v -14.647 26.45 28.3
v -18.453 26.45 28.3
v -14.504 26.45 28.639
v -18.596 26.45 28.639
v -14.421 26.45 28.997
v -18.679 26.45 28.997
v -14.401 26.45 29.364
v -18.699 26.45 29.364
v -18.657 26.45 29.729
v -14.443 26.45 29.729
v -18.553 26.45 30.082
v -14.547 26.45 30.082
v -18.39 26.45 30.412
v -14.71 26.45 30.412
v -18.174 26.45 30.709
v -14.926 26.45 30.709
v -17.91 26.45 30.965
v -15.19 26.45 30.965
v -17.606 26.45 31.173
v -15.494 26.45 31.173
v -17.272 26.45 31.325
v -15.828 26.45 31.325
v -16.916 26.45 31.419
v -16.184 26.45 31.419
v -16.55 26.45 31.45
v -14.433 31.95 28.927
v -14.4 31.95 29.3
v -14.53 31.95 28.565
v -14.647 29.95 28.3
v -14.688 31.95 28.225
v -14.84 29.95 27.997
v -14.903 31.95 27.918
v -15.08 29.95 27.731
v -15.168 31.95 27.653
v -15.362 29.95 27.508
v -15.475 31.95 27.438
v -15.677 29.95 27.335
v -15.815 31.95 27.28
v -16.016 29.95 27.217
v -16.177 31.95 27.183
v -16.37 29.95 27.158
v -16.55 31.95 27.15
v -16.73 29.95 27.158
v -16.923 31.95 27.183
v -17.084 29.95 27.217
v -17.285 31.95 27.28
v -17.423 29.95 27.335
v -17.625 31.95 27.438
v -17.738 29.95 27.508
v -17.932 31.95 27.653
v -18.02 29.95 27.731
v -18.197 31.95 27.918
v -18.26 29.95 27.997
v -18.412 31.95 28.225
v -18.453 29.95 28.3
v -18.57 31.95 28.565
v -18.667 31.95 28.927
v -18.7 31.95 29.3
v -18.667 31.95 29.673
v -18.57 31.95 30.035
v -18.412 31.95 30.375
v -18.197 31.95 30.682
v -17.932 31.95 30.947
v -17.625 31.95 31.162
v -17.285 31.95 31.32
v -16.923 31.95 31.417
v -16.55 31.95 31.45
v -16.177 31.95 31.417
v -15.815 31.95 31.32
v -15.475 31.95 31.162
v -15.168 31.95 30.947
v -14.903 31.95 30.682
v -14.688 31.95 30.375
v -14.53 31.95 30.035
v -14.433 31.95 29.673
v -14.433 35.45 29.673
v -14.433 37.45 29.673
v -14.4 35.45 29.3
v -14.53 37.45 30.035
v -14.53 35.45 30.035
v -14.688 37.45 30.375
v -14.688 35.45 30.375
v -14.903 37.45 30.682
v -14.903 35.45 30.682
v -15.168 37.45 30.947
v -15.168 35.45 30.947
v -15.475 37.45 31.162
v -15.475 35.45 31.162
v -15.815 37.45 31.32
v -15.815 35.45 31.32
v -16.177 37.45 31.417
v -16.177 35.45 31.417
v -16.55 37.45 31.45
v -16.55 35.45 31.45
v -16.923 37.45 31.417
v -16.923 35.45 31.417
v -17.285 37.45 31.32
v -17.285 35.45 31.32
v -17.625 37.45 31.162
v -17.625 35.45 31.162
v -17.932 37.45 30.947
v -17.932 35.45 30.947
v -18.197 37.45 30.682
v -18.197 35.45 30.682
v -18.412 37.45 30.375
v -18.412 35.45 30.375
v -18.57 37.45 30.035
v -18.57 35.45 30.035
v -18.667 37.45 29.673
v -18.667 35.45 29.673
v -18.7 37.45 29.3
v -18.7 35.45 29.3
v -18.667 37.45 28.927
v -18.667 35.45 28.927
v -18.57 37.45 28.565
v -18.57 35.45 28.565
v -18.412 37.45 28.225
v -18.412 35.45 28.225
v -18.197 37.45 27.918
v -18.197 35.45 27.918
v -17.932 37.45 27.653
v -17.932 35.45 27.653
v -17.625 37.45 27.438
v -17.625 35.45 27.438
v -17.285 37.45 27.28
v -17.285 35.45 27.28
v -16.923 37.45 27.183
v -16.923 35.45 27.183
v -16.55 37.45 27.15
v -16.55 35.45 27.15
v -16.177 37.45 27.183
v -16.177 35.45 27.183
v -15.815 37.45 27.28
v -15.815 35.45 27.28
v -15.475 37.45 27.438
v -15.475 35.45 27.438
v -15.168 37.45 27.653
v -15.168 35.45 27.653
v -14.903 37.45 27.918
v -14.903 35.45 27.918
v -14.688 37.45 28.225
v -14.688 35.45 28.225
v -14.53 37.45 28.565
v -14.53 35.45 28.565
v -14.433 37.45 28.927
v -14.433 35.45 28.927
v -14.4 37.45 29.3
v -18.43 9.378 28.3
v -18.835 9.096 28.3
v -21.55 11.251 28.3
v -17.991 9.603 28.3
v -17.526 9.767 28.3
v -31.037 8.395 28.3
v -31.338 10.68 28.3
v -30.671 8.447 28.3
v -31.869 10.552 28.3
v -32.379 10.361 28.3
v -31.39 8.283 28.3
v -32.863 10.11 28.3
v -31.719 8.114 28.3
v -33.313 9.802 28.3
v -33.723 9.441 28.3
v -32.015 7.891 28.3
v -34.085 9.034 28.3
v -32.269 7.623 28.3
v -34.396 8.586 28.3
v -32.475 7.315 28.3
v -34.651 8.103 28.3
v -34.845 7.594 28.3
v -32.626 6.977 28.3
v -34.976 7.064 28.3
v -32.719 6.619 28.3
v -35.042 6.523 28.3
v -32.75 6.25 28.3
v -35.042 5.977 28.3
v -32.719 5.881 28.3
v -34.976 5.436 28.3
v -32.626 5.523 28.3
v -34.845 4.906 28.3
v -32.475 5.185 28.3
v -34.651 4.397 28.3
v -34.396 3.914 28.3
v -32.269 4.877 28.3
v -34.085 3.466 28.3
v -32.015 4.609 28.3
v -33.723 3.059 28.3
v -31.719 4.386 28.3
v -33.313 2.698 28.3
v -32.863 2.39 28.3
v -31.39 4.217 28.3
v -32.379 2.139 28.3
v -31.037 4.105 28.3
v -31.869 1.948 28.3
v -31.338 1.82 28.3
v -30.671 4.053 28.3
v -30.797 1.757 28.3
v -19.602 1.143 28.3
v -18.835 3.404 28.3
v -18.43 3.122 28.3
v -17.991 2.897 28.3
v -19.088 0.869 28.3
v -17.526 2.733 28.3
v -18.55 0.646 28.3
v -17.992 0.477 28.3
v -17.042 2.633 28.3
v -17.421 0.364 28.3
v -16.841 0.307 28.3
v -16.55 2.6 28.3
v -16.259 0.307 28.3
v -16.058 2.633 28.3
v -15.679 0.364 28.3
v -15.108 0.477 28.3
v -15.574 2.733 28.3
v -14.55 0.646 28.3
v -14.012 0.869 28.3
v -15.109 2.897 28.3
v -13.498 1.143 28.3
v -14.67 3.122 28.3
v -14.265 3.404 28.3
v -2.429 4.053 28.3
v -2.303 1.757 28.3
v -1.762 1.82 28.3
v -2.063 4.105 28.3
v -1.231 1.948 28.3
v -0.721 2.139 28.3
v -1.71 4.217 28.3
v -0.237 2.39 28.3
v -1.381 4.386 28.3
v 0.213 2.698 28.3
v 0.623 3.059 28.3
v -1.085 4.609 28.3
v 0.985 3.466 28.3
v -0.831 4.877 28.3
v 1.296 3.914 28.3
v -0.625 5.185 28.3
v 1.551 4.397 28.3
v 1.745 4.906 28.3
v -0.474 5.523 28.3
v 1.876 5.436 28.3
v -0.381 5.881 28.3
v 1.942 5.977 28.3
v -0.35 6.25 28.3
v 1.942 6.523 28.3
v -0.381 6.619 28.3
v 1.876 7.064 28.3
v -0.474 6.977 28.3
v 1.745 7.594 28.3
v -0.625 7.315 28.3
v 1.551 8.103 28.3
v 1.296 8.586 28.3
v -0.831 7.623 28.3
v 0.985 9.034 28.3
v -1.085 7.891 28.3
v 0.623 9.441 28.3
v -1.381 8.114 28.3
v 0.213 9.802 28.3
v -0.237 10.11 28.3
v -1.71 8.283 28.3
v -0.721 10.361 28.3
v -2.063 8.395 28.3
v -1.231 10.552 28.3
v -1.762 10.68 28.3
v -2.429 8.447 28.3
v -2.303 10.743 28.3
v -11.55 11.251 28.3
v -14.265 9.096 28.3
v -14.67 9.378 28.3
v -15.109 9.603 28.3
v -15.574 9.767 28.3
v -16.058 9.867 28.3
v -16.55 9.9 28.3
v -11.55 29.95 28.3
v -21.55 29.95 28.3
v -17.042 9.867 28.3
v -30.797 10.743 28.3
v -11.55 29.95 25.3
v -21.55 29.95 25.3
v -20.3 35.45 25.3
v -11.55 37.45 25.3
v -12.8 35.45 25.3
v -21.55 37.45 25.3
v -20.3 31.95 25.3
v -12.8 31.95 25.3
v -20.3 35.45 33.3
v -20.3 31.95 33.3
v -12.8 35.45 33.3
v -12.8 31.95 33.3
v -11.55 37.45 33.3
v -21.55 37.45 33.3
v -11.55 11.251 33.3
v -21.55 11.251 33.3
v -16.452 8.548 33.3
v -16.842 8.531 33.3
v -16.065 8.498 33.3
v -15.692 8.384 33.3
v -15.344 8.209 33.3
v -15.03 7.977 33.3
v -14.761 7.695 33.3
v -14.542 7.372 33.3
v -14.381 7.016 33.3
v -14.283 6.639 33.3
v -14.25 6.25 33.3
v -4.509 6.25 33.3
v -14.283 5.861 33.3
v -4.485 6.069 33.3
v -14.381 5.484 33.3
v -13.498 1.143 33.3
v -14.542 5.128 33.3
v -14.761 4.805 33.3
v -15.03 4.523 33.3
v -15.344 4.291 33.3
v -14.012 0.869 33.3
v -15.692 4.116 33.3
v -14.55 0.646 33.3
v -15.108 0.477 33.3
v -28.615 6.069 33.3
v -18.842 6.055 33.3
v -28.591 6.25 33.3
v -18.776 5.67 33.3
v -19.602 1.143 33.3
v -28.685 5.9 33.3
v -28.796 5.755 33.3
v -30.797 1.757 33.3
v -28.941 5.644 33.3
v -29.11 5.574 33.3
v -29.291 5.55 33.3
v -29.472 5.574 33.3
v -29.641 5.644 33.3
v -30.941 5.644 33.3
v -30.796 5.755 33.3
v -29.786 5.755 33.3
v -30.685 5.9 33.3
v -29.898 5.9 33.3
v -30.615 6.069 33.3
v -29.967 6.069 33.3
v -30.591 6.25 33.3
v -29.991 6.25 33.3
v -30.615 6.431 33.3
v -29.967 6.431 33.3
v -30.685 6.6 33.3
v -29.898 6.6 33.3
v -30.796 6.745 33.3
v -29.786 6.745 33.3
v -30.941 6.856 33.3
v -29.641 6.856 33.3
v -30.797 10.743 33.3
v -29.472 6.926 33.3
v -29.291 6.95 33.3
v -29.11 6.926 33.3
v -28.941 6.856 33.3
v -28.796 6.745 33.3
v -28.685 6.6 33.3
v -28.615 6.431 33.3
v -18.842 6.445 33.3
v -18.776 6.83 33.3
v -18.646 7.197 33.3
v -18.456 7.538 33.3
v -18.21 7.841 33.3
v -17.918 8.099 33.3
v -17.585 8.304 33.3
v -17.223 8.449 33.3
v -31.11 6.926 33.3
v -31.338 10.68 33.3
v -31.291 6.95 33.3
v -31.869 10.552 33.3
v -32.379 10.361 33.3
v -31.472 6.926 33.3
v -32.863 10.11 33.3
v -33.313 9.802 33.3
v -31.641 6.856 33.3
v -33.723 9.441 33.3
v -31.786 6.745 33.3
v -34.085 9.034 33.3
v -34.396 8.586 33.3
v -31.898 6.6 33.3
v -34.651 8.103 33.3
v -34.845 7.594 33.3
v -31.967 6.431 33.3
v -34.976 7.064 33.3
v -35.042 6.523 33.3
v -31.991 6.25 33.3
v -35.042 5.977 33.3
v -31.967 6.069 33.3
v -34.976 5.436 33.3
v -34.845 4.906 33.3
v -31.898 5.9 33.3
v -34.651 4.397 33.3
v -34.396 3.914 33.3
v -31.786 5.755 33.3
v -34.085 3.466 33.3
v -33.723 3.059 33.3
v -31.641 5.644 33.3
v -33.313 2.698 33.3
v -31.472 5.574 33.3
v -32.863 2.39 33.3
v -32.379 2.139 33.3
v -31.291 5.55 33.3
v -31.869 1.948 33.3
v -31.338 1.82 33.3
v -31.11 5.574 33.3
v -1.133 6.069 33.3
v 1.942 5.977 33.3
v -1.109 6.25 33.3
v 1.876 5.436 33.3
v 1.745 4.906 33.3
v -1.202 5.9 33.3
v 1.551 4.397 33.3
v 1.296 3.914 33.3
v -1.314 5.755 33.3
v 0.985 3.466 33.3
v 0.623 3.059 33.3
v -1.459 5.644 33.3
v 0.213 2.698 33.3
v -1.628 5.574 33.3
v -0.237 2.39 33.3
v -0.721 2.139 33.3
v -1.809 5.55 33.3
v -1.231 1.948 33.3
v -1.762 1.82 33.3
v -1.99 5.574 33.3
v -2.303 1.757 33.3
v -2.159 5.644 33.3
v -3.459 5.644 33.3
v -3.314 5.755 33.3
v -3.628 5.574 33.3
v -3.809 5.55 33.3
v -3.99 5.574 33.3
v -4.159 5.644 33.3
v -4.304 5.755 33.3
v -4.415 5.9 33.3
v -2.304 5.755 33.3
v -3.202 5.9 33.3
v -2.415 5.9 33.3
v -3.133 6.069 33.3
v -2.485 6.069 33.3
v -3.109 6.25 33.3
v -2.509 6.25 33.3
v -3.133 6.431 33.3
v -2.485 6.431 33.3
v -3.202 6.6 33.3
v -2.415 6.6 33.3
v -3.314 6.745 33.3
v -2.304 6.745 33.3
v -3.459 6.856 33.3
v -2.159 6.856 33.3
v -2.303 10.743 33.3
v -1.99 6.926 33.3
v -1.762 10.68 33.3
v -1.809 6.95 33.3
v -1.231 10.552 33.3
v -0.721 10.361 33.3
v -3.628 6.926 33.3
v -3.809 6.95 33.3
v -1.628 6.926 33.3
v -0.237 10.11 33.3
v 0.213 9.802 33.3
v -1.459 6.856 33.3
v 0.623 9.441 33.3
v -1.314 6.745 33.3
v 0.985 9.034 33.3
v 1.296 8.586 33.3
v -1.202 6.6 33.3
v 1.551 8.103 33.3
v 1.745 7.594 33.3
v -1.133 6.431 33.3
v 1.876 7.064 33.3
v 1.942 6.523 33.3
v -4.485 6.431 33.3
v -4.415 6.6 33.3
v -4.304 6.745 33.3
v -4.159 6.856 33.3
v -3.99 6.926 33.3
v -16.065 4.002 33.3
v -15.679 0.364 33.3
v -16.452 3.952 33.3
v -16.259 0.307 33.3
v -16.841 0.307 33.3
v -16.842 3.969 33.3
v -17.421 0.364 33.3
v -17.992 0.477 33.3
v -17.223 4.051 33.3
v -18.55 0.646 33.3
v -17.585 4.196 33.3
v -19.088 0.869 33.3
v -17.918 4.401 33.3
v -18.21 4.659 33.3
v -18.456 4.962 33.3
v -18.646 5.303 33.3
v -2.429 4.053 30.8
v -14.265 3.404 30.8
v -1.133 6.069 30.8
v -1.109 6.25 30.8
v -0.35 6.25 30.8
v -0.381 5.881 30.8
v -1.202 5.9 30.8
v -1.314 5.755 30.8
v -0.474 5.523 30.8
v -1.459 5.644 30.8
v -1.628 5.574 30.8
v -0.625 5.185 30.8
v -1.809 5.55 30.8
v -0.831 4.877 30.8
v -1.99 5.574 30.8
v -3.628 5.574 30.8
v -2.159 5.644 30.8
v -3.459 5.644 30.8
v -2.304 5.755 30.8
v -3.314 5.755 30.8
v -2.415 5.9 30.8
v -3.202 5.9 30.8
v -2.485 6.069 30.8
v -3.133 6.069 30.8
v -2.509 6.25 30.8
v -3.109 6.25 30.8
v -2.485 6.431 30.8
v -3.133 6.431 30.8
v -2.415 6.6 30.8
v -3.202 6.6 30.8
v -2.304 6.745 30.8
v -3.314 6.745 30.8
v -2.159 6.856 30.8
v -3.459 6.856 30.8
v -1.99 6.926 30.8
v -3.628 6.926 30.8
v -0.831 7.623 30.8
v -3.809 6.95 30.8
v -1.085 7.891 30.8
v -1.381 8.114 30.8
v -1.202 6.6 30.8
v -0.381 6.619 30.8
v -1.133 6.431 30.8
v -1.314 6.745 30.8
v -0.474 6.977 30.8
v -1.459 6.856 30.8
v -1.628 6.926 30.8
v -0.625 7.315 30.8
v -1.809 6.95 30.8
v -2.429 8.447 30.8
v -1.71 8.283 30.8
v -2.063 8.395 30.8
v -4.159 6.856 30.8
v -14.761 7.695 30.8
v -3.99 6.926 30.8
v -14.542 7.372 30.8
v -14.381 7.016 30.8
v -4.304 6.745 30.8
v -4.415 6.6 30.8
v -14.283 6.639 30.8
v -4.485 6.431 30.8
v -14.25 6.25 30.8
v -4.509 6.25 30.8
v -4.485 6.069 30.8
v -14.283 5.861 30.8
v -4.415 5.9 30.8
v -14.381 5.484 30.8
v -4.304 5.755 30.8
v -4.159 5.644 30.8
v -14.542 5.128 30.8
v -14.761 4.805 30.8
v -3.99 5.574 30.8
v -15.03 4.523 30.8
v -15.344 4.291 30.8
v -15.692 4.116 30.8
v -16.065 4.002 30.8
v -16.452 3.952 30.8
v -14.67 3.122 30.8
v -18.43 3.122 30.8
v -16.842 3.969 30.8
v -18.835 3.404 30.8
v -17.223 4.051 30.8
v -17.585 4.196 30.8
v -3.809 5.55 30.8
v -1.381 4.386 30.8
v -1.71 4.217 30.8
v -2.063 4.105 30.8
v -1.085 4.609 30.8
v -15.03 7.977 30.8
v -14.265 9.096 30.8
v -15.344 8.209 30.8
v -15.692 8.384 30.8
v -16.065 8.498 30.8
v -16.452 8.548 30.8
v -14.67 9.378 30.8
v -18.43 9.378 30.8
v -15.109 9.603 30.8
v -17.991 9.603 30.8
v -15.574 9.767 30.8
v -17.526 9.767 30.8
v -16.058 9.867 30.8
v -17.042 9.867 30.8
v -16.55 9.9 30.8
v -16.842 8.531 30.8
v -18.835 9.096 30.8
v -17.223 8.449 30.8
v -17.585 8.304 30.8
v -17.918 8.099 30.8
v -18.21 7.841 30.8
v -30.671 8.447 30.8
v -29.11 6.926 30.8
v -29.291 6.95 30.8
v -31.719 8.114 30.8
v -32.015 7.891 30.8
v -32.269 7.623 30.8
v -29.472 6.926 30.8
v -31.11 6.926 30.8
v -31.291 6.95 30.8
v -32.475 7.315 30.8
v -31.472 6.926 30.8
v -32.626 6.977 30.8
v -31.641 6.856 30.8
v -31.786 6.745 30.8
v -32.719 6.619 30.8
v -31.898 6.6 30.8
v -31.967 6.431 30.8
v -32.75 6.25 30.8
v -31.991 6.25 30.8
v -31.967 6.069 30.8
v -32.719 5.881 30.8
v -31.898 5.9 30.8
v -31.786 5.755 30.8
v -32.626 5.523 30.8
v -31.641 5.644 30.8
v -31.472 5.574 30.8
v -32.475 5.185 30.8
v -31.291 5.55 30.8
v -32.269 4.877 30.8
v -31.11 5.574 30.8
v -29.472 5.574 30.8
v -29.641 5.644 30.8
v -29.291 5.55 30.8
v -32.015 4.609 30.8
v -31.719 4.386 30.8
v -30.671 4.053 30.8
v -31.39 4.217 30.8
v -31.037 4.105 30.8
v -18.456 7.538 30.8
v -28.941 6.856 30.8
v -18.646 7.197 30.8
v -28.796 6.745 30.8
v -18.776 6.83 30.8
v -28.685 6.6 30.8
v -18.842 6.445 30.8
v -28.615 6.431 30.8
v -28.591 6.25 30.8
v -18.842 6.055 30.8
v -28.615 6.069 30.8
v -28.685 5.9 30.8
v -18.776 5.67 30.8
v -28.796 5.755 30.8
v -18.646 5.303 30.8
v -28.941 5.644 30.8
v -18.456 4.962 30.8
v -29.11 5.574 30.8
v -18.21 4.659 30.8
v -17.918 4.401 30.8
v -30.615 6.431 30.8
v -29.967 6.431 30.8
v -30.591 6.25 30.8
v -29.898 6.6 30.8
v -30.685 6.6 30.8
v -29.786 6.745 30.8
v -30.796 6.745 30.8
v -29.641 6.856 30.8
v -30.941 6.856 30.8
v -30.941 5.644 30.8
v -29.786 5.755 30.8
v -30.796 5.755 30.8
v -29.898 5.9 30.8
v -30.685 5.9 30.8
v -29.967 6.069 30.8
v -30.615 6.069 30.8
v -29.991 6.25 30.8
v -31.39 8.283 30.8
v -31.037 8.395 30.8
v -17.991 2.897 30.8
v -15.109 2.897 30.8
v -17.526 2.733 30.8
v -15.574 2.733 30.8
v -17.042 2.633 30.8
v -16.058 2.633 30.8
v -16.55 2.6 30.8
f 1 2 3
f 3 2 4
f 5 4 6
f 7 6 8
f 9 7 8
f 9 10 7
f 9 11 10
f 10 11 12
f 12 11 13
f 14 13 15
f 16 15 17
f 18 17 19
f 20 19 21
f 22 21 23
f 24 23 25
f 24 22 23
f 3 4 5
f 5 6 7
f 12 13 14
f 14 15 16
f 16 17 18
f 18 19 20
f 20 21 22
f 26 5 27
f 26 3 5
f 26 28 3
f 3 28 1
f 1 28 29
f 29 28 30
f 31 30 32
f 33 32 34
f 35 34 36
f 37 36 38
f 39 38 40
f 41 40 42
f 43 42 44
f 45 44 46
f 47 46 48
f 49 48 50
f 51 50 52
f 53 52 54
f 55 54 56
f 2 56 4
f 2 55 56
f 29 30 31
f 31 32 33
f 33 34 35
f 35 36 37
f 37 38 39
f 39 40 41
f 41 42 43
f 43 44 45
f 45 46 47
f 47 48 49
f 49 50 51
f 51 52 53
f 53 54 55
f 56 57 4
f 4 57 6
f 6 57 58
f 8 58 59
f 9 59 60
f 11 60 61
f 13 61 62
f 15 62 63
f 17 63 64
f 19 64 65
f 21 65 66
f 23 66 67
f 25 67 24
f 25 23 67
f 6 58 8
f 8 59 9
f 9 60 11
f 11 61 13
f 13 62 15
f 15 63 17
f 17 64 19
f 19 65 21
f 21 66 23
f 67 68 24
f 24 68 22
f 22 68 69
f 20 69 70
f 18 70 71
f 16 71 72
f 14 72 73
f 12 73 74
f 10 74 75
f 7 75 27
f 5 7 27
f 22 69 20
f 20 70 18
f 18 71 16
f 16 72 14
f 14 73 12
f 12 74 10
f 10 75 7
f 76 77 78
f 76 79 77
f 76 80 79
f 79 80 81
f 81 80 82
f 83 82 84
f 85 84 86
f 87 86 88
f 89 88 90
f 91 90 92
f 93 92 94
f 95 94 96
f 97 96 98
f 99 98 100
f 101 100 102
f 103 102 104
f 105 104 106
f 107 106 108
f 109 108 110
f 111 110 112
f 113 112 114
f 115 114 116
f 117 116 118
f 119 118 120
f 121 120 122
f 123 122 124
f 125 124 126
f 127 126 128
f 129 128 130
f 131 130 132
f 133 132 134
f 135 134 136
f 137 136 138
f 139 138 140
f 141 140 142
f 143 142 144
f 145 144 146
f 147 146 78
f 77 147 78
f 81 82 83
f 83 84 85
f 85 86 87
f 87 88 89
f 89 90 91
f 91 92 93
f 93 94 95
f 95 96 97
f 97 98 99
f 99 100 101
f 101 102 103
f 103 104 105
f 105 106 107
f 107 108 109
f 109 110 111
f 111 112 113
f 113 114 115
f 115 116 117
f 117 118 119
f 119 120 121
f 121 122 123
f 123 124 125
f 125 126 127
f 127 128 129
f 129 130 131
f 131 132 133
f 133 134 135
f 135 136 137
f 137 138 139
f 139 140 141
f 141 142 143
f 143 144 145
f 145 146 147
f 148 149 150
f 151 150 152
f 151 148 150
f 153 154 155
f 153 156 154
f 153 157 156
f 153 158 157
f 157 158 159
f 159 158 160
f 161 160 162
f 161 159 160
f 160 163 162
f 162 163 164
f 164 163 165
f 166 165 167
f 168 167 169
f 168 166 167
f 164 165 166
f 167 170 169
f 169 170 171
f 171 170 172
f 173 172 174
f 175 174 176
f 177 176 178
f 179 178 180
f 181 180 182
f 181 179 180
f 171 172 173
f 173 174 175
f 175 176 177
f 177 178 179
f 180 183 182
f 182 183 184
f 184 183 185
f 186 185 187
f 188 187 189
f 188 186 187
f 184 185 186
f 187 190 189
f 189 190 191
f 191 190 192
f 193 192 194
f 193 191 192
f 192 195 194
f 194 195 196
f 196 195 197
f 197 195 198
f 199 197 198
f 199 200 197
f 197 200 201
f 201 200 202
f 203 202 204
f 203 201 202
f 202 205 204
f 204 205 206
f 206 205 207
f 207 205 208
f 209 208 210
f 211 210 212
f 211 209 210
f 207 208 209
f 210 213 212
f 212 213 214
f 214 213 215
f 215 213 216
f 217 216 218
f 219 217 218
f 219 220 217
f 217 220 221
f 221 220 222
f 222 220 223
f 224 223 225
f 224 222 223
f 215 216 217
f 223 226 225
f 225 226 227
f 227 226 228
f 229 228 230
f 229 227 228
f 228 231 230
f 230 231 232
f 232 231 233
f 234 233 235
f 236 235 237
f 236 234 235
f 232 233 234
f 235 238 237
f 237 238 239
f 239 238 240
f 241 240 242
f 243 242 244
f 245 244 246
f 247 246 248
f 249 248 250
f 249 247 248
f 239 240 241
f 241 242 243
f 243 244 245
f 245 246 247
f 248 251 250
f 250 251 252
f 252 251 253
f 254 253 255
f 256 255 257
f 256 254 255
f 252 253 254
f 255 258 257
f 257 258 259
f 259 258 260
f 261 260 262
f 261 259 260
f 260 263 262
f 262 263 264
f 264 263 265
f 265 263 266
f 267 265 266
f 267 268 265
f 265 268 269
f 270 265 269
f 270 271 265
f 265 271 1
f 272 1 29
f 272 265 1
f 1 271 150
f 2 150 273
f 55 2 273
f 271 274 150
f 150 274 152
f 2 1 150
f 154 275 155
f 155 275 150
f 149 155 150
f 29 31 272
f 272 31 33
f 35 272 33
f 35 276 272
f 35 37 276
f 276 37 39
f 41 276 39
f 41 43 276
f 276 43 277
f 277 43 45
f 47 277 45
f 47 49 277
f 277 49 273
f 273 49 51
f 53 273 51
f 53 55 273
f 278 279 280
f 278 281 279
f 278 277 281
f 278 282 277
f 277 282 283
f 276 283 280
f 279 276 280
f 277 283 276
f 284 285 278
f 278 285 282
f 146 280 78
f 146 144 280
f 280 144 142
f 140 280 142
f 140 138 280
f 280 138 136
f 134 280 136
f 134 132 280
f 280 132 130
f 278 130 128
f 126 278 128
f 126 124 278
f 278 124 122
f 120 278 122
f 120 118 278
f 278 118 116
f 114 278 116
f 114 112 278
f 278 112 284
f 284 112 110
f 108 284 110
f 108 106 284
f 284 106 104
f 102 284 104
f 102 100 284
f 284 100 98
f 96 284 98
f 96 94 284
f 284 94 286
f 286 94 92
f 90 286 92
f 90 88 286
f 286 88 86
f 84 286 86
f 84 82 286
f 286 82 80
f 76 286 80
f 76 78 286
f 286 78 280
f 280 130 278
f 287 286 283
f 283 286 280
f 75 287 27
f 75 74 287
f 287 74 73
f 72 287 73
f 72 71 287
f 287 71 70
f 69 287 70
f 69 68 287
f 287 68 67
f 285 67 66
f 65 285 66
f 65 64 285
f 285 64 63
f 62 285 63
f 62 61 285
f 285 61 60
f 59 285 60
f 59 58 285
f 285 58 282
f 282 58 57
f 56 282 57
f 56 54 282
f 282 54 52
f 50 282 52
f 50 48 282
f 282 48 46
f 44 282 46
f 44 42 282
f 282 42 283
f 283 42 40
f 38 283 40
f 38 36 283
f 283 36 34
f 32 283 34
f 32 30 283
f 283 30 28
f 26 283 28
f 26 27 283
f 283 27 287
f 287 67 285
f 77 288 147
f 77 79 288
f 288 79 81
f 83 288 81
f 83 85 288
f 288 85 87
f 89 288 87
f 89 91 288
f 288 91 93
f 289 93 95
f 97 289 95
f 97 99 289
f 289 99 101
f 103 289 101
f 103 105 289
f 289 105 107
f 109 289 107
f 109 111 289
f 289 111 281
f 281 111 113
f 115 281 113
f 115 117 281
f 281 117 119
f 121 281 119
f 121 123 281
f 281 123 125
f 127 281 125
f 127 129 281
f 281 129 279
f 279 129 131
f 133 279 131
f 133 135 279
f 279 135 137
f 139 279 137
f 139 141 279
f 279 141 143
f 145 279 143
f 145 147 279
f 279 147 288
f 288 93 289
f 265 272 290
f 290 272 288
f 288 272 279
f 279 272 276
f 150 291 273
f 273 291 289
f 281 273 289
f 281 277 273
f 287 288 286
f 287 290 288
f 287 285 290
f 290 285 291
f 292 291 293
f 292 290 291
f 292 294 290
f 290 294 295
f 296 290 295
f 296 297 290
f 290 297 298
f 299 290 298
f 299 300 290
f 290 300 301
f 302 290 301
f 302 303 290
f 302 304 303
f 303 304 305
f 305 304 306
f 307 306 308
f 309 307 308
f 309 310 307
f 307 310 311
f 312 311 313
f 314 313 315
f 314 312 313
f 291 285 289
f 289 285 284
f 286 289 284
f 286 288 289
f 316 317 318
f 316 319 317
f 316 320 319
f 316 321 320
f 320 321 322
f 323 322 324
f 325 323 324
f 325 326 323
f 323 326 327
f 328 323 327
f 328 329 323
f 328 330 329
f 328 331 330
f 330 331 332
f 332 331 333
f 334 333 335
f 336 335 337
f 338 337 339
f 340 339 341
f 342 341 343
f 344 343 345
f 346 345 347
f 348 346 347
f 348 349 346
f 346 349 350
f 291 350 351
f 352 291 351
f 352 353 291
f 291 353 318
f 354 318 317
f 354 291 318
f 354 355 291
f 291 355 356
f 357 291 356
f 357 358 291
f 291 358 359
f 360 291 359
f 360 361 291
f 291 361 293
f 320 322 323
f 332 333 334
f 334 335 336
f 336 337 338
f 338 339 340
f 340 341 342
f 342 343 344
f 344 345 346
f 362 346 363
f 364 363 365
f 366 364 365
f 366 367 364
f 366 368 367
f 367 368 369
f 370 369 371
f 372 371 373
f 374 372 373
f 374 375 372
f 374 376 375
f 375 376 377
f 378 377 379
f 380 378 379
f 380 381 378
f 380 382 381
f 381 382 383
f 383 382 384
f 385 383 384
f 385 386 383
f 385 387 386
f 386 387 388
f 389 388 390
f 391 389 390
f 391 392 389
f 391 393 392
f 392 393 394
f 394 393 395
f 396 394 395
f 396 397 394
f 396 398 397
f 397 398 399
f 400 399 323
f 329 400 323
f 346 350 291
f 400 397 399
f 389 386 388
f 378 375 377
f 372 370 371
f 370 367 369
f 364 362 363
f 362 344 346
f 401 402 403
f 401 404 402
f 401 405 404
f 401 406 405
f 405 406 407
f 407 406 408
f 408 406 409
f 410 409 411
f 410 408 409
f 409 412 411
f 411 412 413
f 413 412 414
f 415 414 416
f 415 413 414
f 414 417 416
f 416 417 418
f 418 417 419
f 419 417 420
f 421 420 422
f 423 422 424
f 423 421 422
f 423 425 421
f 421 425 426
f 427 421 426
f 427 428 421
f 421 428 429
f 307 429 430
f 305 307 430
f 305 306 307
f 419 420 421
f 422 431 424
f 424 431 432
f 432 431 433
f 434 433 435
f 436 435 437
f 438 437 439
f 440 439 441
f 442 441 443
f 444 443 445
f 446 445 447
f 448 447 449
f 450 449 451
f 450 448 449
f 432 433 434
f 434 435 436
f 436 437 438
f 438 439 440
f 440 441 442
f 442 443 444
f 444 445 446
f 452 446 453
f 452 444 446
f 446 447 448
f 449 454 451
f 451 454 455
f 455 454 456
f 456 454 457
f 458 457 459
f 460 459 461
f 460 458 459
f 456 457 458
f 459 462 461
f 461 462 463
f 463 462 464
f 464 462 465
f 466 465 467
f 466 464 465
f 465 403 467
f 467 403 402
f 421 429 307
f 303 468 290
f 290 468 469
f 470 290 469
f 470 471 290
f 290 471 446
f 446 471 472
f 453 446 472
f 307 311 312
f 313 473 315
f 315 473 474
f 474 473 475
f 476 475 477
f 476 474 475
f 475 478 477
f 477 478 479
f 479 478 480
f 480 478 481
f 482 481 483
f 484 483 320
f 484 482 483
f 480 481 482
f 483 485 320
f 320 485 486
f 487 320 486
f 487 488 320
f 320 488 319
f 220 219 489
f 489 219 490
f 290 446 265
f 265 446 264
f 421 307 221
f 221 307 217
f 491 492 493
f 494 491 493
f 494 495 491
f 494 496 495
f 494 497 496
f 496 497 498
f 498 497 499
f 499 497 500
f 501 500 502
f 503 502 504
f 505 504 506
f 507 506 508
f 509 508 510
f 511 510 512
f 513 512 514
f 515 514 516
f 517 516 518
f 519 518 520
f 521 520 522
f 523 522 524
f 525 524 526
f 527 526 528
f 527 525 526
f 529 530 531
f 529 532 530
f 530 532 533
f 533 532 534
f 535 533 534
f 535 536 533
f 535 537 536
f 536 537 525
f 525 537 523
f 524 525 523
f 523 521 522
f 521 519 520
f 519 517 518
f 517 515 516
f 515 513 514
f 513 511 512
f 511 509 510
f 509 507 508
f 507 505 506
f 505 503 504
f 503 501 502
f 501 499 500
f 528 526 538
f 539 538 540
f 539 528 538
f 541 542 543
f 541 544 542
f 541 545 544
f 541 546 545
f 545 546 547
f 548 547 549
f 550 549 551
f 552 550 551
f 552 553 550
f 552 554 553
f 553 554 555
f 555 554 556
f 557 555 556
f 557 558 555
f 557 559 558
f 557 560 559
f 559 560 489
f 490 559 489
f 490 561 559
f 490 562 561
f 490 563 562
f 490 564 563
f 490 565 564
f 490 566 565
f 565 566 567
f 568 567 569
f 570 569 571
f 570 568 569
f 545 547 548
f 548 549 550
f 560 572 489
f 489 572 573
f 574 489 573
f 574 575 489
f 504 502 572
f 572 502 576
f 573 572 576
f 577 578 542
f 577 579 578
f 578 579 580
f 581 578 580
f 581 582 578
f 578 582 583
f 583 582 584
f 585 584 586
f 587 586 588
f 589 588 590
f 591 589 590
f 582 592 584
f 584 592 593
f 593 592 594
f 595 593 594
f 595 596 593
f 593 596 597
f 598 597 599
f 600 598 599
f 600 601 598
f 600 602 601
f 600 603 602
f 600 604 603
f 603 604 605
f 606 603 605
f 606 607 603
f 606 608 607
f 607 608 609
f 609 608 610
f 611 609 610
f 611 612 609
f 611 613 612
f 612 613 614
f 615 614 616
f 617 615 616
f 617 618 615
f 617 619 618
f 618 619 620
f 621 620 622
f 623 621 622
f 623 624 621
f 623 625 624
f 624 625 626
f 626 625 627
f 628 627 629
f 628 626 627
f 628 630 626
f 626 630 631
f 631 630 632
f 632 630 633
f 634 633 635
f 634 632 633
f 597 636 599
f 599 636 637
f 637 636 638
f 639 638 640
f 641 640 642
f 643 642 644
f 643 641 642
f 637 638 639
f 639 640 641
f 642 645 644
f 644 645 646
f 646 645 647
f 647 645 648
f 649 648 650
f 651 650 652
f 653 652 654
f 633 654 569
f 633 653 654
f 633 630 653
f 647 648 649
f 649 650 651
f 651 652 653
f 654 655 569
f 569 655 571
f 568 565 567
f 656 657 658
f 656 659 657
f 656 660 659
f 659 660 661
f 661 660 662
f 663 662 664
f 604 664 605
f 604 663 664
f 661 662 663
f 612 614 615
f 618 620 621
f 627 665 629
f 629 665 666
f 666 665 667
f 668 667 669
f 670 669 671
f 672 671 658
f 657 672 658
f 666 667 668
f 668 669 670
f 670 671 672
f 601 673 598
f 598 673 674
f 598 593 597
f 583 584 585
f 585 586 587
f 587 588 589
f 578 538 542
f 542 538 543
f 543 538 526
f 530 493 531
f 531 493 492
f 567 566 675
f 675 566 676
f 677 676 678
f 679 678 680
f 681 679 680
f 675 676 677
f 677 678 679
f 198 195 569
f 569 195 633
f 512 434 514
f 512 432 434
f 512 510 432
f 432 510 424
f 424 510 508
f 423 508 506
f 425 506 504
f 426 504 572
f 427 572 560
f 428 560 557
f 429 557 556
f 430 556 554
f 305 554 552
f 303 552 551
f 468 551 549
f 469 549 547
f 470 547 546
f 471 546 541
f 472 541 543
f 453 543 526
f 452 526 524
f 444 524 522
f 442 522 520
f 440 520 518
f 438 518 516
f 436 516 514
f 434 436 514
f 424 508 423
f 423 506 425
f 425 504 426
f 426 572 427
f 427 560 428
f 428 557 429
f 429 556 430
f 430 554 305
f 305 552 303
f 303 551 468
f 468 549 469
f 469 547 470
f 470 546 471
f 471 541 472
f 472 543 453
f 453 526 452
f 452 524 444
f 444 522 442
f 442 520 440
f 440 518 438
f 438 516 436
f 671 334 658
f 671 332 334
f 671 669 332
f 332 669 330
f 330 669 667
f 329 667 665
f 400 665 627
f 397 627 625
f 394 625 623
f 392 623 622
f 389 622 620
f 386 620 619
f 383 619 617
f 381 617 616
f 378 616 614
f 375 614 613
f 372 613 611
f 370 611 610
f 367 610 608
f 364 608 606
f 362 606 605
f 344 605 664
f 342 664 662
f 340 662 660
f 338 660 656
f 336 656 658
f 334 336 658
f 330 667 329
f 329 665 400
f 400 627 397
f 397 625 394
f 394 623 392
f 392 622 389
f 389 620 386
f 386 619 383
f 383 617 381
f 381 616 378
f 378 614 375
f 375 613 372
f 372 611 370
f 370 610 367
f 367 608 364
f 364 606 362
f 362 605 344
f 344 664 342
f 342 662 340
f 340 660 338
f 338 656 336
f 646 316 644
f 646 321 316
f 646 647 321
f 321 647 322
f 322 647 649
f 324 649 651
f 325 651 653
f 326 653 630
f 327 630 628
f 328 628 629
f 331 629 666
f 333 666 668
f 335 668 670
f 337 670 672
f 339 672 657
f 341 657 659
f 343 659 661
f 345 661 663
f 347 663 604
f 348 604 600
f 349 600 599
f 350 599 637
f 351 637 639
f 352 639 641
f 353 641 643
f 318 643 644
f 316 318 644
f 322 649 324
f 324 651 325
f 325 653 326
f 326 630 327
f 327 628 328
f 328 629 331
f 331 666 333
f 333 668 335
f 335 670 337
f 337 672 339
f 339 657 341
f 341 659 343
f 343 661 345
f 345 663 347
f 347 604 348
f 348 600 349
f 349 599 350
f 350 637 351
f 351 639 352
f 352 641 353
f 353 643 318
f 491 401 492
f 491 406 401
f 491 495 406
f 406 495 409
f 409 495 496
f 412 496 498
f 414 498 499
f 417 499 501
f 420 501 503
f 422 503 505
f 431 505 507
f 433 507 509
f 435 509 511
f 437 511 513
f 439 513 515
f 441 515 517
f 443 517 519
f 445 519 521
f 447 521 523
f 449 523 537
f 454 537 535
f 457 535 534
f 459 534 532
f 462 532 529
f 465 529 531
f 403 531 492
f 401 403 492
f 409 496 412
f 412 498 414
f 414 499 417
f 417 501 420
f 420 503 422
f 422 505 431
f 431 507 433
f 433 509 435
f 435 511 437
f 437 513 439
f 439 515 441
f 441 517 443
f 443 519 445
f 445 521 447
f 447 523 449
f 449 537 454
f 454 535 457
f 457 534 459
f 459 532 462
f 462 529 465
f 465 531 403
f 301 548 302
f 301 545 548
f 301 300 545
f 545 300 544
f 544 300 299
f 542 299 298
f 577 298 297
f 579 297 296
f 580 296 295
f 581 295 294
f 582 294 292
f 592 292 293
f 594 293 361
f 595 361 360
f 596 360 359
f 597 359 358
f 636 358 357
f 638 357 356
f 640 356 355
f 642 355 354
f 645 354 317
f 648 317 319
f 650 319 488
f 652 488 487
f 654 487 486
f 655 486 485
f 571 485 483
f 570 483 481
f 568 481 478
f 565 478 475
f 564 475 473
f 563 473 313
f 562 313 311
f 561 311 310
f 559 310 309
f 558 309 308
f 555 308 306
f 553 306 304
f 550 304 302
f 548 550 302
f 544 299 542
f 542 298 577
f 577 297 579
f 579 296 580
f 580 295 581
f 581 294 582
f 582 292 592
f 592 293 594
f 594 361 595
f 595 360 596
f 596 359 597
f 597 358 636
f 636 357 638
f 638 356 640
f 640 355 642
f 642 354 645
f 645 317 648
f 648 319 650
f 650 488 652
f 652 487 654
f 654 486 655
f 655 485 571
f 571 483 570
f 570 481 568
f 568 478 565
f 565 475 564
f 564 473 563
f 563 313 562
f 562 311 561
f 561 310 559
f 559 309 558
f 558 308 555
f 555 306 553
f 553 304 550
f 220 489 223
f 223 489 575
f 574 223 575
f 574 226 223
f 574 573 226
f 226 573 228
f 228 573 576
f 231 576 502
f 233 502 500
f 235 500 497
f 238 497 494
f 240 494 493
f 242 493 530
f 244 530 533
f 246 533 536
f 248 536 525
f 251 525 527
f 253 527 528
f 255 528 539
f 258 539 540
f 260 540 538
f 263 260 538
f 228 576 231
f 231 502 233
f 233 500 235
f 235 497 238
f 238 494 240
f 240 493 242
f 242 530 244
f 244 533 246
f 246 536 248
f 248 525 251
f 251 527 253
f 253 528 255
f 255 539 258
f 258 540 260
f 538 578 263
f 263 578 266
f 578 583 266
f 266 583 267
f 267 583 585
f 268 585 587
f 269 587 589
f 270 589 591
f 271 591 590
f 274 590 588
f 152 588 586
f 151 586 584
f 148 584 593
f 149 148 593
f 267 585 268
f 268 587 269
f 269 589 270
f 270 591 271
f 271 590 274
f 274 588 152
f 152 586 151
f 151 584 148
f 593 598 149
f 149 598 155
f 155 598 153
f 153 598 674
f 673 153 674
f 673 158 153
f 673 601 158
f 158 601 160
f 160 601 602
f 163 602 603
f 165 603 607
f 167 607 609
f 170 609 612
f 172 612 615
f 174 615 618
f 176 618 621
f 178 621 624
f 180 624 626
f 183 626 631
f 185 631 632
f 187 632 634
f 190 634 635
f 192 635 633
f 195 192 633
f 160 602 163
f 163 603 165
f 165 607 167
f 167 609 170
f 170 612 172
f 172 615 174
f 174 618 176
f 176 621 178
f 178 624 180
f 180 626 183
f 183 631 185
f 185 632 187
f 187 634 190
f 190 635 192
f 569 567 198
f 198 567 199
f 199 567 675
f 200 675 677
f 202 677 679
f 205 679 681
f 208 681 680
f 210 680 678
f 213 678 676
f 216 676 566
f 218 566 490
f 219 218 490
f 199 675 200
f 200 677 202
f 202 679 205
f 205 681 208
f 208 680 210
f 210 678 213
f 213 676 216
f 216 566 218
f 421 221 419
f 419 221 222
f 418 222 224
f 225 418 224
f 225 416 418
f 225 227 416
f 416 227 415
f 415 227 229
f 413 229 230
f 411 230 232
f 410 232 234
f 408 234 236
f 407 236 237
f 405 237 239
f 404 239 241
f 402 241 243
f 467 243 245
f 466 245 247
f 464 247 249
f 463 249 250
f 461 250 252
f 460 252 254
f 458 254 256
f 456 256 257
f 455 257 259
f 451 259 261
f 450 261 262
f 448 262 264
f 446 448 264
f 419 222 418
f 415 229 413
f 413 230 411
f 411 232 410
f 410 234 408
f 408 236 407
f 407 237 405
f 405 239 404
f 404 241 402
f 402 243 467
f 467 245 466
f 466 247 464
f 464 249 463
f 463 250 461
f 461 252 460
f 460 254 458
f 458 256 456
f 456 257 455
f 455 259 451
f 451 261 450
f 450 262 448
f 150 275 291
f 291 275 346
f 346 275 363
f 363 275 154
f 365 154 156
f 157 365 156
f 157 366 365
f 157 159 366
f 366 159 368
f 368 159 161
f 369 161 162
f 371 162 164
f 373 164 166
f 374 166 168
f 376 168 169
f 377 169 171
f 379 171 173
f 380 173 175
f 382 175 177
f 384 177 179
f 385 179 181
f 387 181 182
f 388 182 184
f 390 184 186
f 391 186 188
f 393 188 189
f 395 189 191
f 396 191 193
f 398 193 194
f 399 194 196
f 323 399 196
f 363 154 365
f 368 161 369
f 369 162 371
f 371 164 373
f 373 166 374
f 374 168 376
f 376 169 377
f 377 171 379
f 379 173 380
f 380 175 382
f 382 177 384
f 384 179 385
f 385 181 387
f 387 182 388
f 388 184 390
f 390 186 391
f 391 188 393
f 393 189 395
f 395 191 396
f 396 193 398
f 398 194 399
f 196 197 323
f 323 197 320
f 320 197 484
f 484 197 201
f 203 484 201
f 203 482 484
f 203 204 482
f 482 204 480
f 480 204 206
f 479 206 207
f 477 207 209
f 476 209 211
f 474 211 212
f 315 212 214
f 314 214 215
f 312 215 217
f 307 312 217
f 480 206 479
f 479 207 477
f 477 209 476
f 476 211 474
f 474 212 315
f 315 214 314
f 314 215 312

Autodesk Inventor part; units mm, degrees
ref_plane "YZ Plane" through (0, 0, 0) normal (1, 0, 0) x (0, 1, 0)
ref_plane "Work Plane1" through (-16.55, 6.25, 30.8) normal (0, 0, 1) x (-1, 0, 0)
sketch "Sketch1" plane through (-16.55, 6.25, 30.8) normal (0, 0, 1) x (-1, 0, 0)
  circle A0 centre (4.7413, 0) radius 0.35 projected
  circle A1 centre (6.7413, 0) radius 0.35 projected
  circle A2 centre (8.7413, 0) radius 0.35 projected
  circle A3 centre (10.7413, 0) radius 0.35 projected
  circle A4 centre (12.7413, 0) radius 0.35 projected
  circle A5 centre (14.7413, 0) radius 0.35 projected
  circle A6 centre (-4.7413, 0) radius 0.35 projected
  circle A7 centre (-6.7413, 0) radius 0.35 projected
  circle A8 centre (-8.7413, 0) radius 0.35 projected
  circle A9 centre (-10.7413, 0) radius 0.35 projected
  circle A10 centre (-12.7413, 0) radius 0.35 projected
  circle A11 centre (-14.7413, 0) radius 0.35 projected
  circle A12 centre (0, 0) radius 2.3 projected
  line L0 (2.2091, 2.65) -> (14.1096, 1.997) projected
  arc A13 (2.2091, 2.65) -> (-2.2091, 2.65) centre (0, 0) ccw projected
  line L1 (-14.1096, 1.997) -> (-2.2091, 2.65) projected
  arc A14 (-14.1096, 1.997) -> (-14.1096, -1.997) centre (-14, 0) ccw projected
  line L2 (-2.2091, -2.65) -> (-14.1096, -1.997) projected
  arc A15 (-2.2091, -2.65) -> (2.2091, -2.65) centre (0, 0) ccw projected
  line L3 (14.1096, -1.997) -> (2.2091, -2.65) projected
  arc A16 (14.1096, -1.997) -> (14.1096, 1.997) centre (14, 0) ccw projected
  arc A17 (2.2852, 2.8461) -> (-2.2852, 2.8461) centre (0, 0) ccw
  line L4 (2.2852, 2.8461) -> (14.1205, 2.1967)
  arc A18 (14.1205, -2.1967) -> (14.1205, 2.1967) centre (14, 0) ccw
  line L5 (14.1205, -2.1967) -> (2.2852, -2.8461)
  arc A19 (-2.2852, -2.8461) -> (2.2852, -2.8461) centre (0, 0) ccw
  line L6 (-2.2852, -2.8461) -> (-14.1205, -2.1967)
  arc A20 (-14.1205, 2.1967) -> (-14.1205, -2.1967) centre (-14, 0) ccw
  line L7 (-14.1205, 2.1967) -> (-2.2852, 2.8461)
  arc A21 (3.0522, 5.1075) -> (-3.0522, 5.1075) centre (0, 0) ccw
  line L8 (3.0522, 5.1075) -> (14.2466, 4.4932)
  arc A22 (14.2466, -4.4932) -> (14.2466, 4.4932) centre (14, 0) ccw
  line L9 (14.2466, -4.4932) -> (3.0522, -5.1075)
  arc A23 (-3.0522, -5.1075) -> (3.0522, -5.1075) centre (0, 0) ccw
  line L10 (-3.0522, -5.1075) -> (-14.2466, -4.4932)
  arc A24 (-14.2466, 4.4932) -> (-14.2466, -4.4932) centre (-14, 0) ccw
  line L11 (-14.2466, 4.4932) -> (-3.0522, 5.1075)
  circle A25 centre (-14.7413, 0) radius 0.35 projected
  point P0 (-16.55, 6.25)
  dimension "d0" = 0.2
  dimension "d1" = 2.5
extrude "Extrusion1" add sketch "Sketch1" against normal blind 2.5 contours L8 A22 L9 A23 L10 A24 L11 A21
sketch "Sketch2" plane through (-16.55, 6.25, 30.8) normal (0, 0, 1) x (1, 0, 0)
  arc A0 (-3.0522, -5.1075) -> (3.0522, -5.1075) centre (0, 0) ccw projected
  line L0 (14.2466, -4.4932) -> (3.0522, -5.1075) projected
  arc A1 (14.2466, -4.4932) -> (14.2466, 4.4932) centre (14, 0) ccw projected
  line L1 (3.0522, 5.1075) -> (14.2466, 4.4932) projected
  arc A2 (3.0522, 5.1075) -> (-3.0522, 5.1075) centre (0, 0) ccw projected
  line L2 (-14.2466, 4.4932) -> (-3.0522, 5.1075) projected
  arc A3 (-14.2466, 4.4932) -> (-14.2466, -4.4932) centre (-14, 0) ccw projected
  line L3 (-3.0522, -5.1075) -> (-14.2466, -4.4932) projected
  line L4 (14.1205, -2.1967) -> (2.2852, -2.8461) projected
  arc A4 (-2.2852, -2.8461) -> (2.2852, -2.8461) centre (0, 0) ccw projected
  line L5 (-2.2852, -2.8461) -> (-14.1205, -2.1967) projected
  arc A5 (-14.1205, 2.1967) -> (-14.1205, -2.1967) centre (-14, 0) ccw projected
  line L6 (-14.1205, 2.1967) -> (-2.2852, 2.8461) projected
  arc A6 (2.2852, 2.8461) -> (-2.2852, 2.8461) centre (0, 0) ccw projected
  line L7 (2.2852, 2.8461) -> (14.1205, 2.1967) projected
  arc A7 (14.1205, -2.1967) -> (14.1205, 2.1967) centre (14, 0) ccw projected
  arc A8 (-3.0522, -5.1075) -> (3.0522, -5.1075) centre (0, 0) ccw projected
  line L8 (14.2466, -4.4932) -> (3.0522, -5.1075) projected
  arc A9 (14.2466, -4.4932) -> (14.2466, 4.4932) centre (14, 0) ccw projected
  line L9 (3.0522, 5.1075) -> (14.2466, 4.4932) projected
  arc A10 (3.0522, 5.1075) -> (-3.0522, 5.1075) centre (0, 0) ccw projected
  line L10 (-14.2466, 4.4932) -> (-3.0522, 5.1075) projected
  arc A11 (-14.2466, 4.4932) -> (-14.2466, -4.4932) centre (-14, 0) ccw projected
  line L11 (-3.0522, -5.1075) -> (-14.2466, -4.4932) projected
  circle A12 centre (-14.7413, 0) radius 0.35 projected
  circle A13 centre (-12.7413, 0) radius 0.35 projected
  circle A14 centre (12.7413, 0) radius 0.35 projected
  circle A15 centre (14.7413, 0) radius 0.35 projected
  circle A16 centre (0, 0) radius 2.3 projected
  point P0 (16.55, -6.25)
extrude "Extrusion2" add sketch "Sketch2" along normal blind 2.5 contours L3 A3 L2 A2 L1 A1 L0 A0 | L4 A4 L5 A5 L6 A6 L7 A7
sketch "Sketch3" plane through (-16.55, 6.25, 33.3) normal (0, 0, 1) x (1, 0, 0)
  circle A0 centre (14.7413, 0) radius 0.35 projected
  circle A1 centre (12.7413, 0) radius 0.35 projected
  circle A2 centre (-12.7413, 0) radius 0.35 projected
  circle A3 centre (-14.7413, 0) radius 0.35 projected
  circle A4 centre (-14.7413, 0) radius 0.7
  circle A5 centre (-12.7413, 0) radius 0.7
  circle A6 centre (12.7413, 0) radius 0.7
  circle A7 centre (14.7413, 0) radius 0.7
  point P0 (16.55, -6.25)
  dimension "d6" = 1.4
  dimension "d7" = 1.4
  dimension "d8" = 1.4
  dimension "d9" = 1.4
extrude "Extrusion3" cut sketch "Sketch3" against normal up to next
ref_plane "Work Plane2" through (0, 14.75, 0) normal (0, 1, 0) x (-1, 0, 0)
sketch "Sketch4" plane through (0, 14.75, 0) normal (0, 1, 0) x (-1, 0, 0)
  line L0 (19.6022, 33.3) -> (30.7966, 33.3) construction
  line L1 (30.7966, 28.3) -> (19.6022, 28.3) construction
  line L2 (2.3034, 33.3) -> (13.4978, 33.3) construction
  line L3 (13.4978, 28.3) -> (2.3034, 28.3) construction
  line L4 (11.55, 33.3) -> (21.55, 33.3)
  line L5 (21.55, 33.3) -> (21.55, 28.3)
  line L6 (21.55, 28.3) -> (11.55, 28.3)
  line L7 (11.55, 28.3) -> (11.55, 33.3)
  line L8 (-1.95, 33.3) -> (-1.95, 28.3) construction
  line L9 (35.05, 33.3) -> (35.05, 28.3) construction
  point P0 (0, 0)
  dimension "d13" = 10
  dimension "d14" = 13.5
extrude "Extrusion4" add sketch "Sketch4" against normal up to next
sketch "Sketch5" plane through (0, 14.75, 0) normal (0, 1, 0) x (1, 0, 0)
  line L0 (-11.55, -33.3) -> (-21.55, -33.3) projected
  line L1 (-11.55, -28.3) -> (-11.55, -33.3) projected
  line L2 (-21.55, -28.3) -> (-11.55, -28.3) projected
  line L3 (-21.55, -33.3) -> (-21.55, -28.3) projected
  point P0 (0, 0)
extrude "Extrusion5" add sketch "Sketch5" along normal blind 22.7
sketch "Sketch6" plane through (-16.55, 6.25, 28.3) normal (0, 0, -1) x (-1, 0, 0)
  line L0 (-5, 31.2) -> (5, 31.2) projected
  line L1 (-5, 31.2) -> (-5, 5.0006) projected
  line L2 (-3.75, 29.2) -> (3.75, 29.2)
  line L3 (3.75, 29.2) -> (3.75, 25.7)
  line L4 (3.75, 25.7) -> (-3.75, 25.7)
  line L5 (-3.75, 25.7) -> (-3.75, 29.2)
  point P0 (-16.55, -6.25)
  dimension "d19" = 7.5
  dimension "d20" = 3.5
  dimension "d21" = 1.25
  dimension "d22" = 2
extrude "Extrusion6" cut sketch "Sketch6" against normal up to next
sketch "Sketch7" plane through (-16.55, 6.25, 28.3) normal (0, 0, -1) x (-1, 0, 0)
  line L0 (-3.75, 25.7) -> (-3.75, 29.2) projected
  line L1 (-3.75, 29.2) -> (3.75, 29.2) projected
  line L2 (3.75, 29.2) -> (3.75, 25.7) projected
  line L3 (3.75, 25.7) -> (-3.75, 25.7) projected
  line L4 (5, 31.2) -> (5, 5.0006) projected
  line L5 (-5, 31.2) -> (5, 31.2)
  line L6 (5, 31.2) -> (5, 23.7)
  line L7 (5, 23.7) -> (-5, 23.7)
  line L8 (-5, 23.7) -> (-5, 31.2)
  point P0 (-16.55, -6.25)
  dimension "d25" = 7.5
extrude "Extrusion7" add sketch "Sketch7" along normal blind 3
sketch "Sketch8" plane through (0, 37.45, 0) normal (0, 1, 0) x (1, 0, 0)
  circle A0 centre (-16.55, -29.3) radius 2.15
  point P0 (0, 0)
  dimension "d28" = 4.3
extrude "Extrusion8" cut sketch "Sketch8" against normal blind 11
properties part number "HornPocket"
